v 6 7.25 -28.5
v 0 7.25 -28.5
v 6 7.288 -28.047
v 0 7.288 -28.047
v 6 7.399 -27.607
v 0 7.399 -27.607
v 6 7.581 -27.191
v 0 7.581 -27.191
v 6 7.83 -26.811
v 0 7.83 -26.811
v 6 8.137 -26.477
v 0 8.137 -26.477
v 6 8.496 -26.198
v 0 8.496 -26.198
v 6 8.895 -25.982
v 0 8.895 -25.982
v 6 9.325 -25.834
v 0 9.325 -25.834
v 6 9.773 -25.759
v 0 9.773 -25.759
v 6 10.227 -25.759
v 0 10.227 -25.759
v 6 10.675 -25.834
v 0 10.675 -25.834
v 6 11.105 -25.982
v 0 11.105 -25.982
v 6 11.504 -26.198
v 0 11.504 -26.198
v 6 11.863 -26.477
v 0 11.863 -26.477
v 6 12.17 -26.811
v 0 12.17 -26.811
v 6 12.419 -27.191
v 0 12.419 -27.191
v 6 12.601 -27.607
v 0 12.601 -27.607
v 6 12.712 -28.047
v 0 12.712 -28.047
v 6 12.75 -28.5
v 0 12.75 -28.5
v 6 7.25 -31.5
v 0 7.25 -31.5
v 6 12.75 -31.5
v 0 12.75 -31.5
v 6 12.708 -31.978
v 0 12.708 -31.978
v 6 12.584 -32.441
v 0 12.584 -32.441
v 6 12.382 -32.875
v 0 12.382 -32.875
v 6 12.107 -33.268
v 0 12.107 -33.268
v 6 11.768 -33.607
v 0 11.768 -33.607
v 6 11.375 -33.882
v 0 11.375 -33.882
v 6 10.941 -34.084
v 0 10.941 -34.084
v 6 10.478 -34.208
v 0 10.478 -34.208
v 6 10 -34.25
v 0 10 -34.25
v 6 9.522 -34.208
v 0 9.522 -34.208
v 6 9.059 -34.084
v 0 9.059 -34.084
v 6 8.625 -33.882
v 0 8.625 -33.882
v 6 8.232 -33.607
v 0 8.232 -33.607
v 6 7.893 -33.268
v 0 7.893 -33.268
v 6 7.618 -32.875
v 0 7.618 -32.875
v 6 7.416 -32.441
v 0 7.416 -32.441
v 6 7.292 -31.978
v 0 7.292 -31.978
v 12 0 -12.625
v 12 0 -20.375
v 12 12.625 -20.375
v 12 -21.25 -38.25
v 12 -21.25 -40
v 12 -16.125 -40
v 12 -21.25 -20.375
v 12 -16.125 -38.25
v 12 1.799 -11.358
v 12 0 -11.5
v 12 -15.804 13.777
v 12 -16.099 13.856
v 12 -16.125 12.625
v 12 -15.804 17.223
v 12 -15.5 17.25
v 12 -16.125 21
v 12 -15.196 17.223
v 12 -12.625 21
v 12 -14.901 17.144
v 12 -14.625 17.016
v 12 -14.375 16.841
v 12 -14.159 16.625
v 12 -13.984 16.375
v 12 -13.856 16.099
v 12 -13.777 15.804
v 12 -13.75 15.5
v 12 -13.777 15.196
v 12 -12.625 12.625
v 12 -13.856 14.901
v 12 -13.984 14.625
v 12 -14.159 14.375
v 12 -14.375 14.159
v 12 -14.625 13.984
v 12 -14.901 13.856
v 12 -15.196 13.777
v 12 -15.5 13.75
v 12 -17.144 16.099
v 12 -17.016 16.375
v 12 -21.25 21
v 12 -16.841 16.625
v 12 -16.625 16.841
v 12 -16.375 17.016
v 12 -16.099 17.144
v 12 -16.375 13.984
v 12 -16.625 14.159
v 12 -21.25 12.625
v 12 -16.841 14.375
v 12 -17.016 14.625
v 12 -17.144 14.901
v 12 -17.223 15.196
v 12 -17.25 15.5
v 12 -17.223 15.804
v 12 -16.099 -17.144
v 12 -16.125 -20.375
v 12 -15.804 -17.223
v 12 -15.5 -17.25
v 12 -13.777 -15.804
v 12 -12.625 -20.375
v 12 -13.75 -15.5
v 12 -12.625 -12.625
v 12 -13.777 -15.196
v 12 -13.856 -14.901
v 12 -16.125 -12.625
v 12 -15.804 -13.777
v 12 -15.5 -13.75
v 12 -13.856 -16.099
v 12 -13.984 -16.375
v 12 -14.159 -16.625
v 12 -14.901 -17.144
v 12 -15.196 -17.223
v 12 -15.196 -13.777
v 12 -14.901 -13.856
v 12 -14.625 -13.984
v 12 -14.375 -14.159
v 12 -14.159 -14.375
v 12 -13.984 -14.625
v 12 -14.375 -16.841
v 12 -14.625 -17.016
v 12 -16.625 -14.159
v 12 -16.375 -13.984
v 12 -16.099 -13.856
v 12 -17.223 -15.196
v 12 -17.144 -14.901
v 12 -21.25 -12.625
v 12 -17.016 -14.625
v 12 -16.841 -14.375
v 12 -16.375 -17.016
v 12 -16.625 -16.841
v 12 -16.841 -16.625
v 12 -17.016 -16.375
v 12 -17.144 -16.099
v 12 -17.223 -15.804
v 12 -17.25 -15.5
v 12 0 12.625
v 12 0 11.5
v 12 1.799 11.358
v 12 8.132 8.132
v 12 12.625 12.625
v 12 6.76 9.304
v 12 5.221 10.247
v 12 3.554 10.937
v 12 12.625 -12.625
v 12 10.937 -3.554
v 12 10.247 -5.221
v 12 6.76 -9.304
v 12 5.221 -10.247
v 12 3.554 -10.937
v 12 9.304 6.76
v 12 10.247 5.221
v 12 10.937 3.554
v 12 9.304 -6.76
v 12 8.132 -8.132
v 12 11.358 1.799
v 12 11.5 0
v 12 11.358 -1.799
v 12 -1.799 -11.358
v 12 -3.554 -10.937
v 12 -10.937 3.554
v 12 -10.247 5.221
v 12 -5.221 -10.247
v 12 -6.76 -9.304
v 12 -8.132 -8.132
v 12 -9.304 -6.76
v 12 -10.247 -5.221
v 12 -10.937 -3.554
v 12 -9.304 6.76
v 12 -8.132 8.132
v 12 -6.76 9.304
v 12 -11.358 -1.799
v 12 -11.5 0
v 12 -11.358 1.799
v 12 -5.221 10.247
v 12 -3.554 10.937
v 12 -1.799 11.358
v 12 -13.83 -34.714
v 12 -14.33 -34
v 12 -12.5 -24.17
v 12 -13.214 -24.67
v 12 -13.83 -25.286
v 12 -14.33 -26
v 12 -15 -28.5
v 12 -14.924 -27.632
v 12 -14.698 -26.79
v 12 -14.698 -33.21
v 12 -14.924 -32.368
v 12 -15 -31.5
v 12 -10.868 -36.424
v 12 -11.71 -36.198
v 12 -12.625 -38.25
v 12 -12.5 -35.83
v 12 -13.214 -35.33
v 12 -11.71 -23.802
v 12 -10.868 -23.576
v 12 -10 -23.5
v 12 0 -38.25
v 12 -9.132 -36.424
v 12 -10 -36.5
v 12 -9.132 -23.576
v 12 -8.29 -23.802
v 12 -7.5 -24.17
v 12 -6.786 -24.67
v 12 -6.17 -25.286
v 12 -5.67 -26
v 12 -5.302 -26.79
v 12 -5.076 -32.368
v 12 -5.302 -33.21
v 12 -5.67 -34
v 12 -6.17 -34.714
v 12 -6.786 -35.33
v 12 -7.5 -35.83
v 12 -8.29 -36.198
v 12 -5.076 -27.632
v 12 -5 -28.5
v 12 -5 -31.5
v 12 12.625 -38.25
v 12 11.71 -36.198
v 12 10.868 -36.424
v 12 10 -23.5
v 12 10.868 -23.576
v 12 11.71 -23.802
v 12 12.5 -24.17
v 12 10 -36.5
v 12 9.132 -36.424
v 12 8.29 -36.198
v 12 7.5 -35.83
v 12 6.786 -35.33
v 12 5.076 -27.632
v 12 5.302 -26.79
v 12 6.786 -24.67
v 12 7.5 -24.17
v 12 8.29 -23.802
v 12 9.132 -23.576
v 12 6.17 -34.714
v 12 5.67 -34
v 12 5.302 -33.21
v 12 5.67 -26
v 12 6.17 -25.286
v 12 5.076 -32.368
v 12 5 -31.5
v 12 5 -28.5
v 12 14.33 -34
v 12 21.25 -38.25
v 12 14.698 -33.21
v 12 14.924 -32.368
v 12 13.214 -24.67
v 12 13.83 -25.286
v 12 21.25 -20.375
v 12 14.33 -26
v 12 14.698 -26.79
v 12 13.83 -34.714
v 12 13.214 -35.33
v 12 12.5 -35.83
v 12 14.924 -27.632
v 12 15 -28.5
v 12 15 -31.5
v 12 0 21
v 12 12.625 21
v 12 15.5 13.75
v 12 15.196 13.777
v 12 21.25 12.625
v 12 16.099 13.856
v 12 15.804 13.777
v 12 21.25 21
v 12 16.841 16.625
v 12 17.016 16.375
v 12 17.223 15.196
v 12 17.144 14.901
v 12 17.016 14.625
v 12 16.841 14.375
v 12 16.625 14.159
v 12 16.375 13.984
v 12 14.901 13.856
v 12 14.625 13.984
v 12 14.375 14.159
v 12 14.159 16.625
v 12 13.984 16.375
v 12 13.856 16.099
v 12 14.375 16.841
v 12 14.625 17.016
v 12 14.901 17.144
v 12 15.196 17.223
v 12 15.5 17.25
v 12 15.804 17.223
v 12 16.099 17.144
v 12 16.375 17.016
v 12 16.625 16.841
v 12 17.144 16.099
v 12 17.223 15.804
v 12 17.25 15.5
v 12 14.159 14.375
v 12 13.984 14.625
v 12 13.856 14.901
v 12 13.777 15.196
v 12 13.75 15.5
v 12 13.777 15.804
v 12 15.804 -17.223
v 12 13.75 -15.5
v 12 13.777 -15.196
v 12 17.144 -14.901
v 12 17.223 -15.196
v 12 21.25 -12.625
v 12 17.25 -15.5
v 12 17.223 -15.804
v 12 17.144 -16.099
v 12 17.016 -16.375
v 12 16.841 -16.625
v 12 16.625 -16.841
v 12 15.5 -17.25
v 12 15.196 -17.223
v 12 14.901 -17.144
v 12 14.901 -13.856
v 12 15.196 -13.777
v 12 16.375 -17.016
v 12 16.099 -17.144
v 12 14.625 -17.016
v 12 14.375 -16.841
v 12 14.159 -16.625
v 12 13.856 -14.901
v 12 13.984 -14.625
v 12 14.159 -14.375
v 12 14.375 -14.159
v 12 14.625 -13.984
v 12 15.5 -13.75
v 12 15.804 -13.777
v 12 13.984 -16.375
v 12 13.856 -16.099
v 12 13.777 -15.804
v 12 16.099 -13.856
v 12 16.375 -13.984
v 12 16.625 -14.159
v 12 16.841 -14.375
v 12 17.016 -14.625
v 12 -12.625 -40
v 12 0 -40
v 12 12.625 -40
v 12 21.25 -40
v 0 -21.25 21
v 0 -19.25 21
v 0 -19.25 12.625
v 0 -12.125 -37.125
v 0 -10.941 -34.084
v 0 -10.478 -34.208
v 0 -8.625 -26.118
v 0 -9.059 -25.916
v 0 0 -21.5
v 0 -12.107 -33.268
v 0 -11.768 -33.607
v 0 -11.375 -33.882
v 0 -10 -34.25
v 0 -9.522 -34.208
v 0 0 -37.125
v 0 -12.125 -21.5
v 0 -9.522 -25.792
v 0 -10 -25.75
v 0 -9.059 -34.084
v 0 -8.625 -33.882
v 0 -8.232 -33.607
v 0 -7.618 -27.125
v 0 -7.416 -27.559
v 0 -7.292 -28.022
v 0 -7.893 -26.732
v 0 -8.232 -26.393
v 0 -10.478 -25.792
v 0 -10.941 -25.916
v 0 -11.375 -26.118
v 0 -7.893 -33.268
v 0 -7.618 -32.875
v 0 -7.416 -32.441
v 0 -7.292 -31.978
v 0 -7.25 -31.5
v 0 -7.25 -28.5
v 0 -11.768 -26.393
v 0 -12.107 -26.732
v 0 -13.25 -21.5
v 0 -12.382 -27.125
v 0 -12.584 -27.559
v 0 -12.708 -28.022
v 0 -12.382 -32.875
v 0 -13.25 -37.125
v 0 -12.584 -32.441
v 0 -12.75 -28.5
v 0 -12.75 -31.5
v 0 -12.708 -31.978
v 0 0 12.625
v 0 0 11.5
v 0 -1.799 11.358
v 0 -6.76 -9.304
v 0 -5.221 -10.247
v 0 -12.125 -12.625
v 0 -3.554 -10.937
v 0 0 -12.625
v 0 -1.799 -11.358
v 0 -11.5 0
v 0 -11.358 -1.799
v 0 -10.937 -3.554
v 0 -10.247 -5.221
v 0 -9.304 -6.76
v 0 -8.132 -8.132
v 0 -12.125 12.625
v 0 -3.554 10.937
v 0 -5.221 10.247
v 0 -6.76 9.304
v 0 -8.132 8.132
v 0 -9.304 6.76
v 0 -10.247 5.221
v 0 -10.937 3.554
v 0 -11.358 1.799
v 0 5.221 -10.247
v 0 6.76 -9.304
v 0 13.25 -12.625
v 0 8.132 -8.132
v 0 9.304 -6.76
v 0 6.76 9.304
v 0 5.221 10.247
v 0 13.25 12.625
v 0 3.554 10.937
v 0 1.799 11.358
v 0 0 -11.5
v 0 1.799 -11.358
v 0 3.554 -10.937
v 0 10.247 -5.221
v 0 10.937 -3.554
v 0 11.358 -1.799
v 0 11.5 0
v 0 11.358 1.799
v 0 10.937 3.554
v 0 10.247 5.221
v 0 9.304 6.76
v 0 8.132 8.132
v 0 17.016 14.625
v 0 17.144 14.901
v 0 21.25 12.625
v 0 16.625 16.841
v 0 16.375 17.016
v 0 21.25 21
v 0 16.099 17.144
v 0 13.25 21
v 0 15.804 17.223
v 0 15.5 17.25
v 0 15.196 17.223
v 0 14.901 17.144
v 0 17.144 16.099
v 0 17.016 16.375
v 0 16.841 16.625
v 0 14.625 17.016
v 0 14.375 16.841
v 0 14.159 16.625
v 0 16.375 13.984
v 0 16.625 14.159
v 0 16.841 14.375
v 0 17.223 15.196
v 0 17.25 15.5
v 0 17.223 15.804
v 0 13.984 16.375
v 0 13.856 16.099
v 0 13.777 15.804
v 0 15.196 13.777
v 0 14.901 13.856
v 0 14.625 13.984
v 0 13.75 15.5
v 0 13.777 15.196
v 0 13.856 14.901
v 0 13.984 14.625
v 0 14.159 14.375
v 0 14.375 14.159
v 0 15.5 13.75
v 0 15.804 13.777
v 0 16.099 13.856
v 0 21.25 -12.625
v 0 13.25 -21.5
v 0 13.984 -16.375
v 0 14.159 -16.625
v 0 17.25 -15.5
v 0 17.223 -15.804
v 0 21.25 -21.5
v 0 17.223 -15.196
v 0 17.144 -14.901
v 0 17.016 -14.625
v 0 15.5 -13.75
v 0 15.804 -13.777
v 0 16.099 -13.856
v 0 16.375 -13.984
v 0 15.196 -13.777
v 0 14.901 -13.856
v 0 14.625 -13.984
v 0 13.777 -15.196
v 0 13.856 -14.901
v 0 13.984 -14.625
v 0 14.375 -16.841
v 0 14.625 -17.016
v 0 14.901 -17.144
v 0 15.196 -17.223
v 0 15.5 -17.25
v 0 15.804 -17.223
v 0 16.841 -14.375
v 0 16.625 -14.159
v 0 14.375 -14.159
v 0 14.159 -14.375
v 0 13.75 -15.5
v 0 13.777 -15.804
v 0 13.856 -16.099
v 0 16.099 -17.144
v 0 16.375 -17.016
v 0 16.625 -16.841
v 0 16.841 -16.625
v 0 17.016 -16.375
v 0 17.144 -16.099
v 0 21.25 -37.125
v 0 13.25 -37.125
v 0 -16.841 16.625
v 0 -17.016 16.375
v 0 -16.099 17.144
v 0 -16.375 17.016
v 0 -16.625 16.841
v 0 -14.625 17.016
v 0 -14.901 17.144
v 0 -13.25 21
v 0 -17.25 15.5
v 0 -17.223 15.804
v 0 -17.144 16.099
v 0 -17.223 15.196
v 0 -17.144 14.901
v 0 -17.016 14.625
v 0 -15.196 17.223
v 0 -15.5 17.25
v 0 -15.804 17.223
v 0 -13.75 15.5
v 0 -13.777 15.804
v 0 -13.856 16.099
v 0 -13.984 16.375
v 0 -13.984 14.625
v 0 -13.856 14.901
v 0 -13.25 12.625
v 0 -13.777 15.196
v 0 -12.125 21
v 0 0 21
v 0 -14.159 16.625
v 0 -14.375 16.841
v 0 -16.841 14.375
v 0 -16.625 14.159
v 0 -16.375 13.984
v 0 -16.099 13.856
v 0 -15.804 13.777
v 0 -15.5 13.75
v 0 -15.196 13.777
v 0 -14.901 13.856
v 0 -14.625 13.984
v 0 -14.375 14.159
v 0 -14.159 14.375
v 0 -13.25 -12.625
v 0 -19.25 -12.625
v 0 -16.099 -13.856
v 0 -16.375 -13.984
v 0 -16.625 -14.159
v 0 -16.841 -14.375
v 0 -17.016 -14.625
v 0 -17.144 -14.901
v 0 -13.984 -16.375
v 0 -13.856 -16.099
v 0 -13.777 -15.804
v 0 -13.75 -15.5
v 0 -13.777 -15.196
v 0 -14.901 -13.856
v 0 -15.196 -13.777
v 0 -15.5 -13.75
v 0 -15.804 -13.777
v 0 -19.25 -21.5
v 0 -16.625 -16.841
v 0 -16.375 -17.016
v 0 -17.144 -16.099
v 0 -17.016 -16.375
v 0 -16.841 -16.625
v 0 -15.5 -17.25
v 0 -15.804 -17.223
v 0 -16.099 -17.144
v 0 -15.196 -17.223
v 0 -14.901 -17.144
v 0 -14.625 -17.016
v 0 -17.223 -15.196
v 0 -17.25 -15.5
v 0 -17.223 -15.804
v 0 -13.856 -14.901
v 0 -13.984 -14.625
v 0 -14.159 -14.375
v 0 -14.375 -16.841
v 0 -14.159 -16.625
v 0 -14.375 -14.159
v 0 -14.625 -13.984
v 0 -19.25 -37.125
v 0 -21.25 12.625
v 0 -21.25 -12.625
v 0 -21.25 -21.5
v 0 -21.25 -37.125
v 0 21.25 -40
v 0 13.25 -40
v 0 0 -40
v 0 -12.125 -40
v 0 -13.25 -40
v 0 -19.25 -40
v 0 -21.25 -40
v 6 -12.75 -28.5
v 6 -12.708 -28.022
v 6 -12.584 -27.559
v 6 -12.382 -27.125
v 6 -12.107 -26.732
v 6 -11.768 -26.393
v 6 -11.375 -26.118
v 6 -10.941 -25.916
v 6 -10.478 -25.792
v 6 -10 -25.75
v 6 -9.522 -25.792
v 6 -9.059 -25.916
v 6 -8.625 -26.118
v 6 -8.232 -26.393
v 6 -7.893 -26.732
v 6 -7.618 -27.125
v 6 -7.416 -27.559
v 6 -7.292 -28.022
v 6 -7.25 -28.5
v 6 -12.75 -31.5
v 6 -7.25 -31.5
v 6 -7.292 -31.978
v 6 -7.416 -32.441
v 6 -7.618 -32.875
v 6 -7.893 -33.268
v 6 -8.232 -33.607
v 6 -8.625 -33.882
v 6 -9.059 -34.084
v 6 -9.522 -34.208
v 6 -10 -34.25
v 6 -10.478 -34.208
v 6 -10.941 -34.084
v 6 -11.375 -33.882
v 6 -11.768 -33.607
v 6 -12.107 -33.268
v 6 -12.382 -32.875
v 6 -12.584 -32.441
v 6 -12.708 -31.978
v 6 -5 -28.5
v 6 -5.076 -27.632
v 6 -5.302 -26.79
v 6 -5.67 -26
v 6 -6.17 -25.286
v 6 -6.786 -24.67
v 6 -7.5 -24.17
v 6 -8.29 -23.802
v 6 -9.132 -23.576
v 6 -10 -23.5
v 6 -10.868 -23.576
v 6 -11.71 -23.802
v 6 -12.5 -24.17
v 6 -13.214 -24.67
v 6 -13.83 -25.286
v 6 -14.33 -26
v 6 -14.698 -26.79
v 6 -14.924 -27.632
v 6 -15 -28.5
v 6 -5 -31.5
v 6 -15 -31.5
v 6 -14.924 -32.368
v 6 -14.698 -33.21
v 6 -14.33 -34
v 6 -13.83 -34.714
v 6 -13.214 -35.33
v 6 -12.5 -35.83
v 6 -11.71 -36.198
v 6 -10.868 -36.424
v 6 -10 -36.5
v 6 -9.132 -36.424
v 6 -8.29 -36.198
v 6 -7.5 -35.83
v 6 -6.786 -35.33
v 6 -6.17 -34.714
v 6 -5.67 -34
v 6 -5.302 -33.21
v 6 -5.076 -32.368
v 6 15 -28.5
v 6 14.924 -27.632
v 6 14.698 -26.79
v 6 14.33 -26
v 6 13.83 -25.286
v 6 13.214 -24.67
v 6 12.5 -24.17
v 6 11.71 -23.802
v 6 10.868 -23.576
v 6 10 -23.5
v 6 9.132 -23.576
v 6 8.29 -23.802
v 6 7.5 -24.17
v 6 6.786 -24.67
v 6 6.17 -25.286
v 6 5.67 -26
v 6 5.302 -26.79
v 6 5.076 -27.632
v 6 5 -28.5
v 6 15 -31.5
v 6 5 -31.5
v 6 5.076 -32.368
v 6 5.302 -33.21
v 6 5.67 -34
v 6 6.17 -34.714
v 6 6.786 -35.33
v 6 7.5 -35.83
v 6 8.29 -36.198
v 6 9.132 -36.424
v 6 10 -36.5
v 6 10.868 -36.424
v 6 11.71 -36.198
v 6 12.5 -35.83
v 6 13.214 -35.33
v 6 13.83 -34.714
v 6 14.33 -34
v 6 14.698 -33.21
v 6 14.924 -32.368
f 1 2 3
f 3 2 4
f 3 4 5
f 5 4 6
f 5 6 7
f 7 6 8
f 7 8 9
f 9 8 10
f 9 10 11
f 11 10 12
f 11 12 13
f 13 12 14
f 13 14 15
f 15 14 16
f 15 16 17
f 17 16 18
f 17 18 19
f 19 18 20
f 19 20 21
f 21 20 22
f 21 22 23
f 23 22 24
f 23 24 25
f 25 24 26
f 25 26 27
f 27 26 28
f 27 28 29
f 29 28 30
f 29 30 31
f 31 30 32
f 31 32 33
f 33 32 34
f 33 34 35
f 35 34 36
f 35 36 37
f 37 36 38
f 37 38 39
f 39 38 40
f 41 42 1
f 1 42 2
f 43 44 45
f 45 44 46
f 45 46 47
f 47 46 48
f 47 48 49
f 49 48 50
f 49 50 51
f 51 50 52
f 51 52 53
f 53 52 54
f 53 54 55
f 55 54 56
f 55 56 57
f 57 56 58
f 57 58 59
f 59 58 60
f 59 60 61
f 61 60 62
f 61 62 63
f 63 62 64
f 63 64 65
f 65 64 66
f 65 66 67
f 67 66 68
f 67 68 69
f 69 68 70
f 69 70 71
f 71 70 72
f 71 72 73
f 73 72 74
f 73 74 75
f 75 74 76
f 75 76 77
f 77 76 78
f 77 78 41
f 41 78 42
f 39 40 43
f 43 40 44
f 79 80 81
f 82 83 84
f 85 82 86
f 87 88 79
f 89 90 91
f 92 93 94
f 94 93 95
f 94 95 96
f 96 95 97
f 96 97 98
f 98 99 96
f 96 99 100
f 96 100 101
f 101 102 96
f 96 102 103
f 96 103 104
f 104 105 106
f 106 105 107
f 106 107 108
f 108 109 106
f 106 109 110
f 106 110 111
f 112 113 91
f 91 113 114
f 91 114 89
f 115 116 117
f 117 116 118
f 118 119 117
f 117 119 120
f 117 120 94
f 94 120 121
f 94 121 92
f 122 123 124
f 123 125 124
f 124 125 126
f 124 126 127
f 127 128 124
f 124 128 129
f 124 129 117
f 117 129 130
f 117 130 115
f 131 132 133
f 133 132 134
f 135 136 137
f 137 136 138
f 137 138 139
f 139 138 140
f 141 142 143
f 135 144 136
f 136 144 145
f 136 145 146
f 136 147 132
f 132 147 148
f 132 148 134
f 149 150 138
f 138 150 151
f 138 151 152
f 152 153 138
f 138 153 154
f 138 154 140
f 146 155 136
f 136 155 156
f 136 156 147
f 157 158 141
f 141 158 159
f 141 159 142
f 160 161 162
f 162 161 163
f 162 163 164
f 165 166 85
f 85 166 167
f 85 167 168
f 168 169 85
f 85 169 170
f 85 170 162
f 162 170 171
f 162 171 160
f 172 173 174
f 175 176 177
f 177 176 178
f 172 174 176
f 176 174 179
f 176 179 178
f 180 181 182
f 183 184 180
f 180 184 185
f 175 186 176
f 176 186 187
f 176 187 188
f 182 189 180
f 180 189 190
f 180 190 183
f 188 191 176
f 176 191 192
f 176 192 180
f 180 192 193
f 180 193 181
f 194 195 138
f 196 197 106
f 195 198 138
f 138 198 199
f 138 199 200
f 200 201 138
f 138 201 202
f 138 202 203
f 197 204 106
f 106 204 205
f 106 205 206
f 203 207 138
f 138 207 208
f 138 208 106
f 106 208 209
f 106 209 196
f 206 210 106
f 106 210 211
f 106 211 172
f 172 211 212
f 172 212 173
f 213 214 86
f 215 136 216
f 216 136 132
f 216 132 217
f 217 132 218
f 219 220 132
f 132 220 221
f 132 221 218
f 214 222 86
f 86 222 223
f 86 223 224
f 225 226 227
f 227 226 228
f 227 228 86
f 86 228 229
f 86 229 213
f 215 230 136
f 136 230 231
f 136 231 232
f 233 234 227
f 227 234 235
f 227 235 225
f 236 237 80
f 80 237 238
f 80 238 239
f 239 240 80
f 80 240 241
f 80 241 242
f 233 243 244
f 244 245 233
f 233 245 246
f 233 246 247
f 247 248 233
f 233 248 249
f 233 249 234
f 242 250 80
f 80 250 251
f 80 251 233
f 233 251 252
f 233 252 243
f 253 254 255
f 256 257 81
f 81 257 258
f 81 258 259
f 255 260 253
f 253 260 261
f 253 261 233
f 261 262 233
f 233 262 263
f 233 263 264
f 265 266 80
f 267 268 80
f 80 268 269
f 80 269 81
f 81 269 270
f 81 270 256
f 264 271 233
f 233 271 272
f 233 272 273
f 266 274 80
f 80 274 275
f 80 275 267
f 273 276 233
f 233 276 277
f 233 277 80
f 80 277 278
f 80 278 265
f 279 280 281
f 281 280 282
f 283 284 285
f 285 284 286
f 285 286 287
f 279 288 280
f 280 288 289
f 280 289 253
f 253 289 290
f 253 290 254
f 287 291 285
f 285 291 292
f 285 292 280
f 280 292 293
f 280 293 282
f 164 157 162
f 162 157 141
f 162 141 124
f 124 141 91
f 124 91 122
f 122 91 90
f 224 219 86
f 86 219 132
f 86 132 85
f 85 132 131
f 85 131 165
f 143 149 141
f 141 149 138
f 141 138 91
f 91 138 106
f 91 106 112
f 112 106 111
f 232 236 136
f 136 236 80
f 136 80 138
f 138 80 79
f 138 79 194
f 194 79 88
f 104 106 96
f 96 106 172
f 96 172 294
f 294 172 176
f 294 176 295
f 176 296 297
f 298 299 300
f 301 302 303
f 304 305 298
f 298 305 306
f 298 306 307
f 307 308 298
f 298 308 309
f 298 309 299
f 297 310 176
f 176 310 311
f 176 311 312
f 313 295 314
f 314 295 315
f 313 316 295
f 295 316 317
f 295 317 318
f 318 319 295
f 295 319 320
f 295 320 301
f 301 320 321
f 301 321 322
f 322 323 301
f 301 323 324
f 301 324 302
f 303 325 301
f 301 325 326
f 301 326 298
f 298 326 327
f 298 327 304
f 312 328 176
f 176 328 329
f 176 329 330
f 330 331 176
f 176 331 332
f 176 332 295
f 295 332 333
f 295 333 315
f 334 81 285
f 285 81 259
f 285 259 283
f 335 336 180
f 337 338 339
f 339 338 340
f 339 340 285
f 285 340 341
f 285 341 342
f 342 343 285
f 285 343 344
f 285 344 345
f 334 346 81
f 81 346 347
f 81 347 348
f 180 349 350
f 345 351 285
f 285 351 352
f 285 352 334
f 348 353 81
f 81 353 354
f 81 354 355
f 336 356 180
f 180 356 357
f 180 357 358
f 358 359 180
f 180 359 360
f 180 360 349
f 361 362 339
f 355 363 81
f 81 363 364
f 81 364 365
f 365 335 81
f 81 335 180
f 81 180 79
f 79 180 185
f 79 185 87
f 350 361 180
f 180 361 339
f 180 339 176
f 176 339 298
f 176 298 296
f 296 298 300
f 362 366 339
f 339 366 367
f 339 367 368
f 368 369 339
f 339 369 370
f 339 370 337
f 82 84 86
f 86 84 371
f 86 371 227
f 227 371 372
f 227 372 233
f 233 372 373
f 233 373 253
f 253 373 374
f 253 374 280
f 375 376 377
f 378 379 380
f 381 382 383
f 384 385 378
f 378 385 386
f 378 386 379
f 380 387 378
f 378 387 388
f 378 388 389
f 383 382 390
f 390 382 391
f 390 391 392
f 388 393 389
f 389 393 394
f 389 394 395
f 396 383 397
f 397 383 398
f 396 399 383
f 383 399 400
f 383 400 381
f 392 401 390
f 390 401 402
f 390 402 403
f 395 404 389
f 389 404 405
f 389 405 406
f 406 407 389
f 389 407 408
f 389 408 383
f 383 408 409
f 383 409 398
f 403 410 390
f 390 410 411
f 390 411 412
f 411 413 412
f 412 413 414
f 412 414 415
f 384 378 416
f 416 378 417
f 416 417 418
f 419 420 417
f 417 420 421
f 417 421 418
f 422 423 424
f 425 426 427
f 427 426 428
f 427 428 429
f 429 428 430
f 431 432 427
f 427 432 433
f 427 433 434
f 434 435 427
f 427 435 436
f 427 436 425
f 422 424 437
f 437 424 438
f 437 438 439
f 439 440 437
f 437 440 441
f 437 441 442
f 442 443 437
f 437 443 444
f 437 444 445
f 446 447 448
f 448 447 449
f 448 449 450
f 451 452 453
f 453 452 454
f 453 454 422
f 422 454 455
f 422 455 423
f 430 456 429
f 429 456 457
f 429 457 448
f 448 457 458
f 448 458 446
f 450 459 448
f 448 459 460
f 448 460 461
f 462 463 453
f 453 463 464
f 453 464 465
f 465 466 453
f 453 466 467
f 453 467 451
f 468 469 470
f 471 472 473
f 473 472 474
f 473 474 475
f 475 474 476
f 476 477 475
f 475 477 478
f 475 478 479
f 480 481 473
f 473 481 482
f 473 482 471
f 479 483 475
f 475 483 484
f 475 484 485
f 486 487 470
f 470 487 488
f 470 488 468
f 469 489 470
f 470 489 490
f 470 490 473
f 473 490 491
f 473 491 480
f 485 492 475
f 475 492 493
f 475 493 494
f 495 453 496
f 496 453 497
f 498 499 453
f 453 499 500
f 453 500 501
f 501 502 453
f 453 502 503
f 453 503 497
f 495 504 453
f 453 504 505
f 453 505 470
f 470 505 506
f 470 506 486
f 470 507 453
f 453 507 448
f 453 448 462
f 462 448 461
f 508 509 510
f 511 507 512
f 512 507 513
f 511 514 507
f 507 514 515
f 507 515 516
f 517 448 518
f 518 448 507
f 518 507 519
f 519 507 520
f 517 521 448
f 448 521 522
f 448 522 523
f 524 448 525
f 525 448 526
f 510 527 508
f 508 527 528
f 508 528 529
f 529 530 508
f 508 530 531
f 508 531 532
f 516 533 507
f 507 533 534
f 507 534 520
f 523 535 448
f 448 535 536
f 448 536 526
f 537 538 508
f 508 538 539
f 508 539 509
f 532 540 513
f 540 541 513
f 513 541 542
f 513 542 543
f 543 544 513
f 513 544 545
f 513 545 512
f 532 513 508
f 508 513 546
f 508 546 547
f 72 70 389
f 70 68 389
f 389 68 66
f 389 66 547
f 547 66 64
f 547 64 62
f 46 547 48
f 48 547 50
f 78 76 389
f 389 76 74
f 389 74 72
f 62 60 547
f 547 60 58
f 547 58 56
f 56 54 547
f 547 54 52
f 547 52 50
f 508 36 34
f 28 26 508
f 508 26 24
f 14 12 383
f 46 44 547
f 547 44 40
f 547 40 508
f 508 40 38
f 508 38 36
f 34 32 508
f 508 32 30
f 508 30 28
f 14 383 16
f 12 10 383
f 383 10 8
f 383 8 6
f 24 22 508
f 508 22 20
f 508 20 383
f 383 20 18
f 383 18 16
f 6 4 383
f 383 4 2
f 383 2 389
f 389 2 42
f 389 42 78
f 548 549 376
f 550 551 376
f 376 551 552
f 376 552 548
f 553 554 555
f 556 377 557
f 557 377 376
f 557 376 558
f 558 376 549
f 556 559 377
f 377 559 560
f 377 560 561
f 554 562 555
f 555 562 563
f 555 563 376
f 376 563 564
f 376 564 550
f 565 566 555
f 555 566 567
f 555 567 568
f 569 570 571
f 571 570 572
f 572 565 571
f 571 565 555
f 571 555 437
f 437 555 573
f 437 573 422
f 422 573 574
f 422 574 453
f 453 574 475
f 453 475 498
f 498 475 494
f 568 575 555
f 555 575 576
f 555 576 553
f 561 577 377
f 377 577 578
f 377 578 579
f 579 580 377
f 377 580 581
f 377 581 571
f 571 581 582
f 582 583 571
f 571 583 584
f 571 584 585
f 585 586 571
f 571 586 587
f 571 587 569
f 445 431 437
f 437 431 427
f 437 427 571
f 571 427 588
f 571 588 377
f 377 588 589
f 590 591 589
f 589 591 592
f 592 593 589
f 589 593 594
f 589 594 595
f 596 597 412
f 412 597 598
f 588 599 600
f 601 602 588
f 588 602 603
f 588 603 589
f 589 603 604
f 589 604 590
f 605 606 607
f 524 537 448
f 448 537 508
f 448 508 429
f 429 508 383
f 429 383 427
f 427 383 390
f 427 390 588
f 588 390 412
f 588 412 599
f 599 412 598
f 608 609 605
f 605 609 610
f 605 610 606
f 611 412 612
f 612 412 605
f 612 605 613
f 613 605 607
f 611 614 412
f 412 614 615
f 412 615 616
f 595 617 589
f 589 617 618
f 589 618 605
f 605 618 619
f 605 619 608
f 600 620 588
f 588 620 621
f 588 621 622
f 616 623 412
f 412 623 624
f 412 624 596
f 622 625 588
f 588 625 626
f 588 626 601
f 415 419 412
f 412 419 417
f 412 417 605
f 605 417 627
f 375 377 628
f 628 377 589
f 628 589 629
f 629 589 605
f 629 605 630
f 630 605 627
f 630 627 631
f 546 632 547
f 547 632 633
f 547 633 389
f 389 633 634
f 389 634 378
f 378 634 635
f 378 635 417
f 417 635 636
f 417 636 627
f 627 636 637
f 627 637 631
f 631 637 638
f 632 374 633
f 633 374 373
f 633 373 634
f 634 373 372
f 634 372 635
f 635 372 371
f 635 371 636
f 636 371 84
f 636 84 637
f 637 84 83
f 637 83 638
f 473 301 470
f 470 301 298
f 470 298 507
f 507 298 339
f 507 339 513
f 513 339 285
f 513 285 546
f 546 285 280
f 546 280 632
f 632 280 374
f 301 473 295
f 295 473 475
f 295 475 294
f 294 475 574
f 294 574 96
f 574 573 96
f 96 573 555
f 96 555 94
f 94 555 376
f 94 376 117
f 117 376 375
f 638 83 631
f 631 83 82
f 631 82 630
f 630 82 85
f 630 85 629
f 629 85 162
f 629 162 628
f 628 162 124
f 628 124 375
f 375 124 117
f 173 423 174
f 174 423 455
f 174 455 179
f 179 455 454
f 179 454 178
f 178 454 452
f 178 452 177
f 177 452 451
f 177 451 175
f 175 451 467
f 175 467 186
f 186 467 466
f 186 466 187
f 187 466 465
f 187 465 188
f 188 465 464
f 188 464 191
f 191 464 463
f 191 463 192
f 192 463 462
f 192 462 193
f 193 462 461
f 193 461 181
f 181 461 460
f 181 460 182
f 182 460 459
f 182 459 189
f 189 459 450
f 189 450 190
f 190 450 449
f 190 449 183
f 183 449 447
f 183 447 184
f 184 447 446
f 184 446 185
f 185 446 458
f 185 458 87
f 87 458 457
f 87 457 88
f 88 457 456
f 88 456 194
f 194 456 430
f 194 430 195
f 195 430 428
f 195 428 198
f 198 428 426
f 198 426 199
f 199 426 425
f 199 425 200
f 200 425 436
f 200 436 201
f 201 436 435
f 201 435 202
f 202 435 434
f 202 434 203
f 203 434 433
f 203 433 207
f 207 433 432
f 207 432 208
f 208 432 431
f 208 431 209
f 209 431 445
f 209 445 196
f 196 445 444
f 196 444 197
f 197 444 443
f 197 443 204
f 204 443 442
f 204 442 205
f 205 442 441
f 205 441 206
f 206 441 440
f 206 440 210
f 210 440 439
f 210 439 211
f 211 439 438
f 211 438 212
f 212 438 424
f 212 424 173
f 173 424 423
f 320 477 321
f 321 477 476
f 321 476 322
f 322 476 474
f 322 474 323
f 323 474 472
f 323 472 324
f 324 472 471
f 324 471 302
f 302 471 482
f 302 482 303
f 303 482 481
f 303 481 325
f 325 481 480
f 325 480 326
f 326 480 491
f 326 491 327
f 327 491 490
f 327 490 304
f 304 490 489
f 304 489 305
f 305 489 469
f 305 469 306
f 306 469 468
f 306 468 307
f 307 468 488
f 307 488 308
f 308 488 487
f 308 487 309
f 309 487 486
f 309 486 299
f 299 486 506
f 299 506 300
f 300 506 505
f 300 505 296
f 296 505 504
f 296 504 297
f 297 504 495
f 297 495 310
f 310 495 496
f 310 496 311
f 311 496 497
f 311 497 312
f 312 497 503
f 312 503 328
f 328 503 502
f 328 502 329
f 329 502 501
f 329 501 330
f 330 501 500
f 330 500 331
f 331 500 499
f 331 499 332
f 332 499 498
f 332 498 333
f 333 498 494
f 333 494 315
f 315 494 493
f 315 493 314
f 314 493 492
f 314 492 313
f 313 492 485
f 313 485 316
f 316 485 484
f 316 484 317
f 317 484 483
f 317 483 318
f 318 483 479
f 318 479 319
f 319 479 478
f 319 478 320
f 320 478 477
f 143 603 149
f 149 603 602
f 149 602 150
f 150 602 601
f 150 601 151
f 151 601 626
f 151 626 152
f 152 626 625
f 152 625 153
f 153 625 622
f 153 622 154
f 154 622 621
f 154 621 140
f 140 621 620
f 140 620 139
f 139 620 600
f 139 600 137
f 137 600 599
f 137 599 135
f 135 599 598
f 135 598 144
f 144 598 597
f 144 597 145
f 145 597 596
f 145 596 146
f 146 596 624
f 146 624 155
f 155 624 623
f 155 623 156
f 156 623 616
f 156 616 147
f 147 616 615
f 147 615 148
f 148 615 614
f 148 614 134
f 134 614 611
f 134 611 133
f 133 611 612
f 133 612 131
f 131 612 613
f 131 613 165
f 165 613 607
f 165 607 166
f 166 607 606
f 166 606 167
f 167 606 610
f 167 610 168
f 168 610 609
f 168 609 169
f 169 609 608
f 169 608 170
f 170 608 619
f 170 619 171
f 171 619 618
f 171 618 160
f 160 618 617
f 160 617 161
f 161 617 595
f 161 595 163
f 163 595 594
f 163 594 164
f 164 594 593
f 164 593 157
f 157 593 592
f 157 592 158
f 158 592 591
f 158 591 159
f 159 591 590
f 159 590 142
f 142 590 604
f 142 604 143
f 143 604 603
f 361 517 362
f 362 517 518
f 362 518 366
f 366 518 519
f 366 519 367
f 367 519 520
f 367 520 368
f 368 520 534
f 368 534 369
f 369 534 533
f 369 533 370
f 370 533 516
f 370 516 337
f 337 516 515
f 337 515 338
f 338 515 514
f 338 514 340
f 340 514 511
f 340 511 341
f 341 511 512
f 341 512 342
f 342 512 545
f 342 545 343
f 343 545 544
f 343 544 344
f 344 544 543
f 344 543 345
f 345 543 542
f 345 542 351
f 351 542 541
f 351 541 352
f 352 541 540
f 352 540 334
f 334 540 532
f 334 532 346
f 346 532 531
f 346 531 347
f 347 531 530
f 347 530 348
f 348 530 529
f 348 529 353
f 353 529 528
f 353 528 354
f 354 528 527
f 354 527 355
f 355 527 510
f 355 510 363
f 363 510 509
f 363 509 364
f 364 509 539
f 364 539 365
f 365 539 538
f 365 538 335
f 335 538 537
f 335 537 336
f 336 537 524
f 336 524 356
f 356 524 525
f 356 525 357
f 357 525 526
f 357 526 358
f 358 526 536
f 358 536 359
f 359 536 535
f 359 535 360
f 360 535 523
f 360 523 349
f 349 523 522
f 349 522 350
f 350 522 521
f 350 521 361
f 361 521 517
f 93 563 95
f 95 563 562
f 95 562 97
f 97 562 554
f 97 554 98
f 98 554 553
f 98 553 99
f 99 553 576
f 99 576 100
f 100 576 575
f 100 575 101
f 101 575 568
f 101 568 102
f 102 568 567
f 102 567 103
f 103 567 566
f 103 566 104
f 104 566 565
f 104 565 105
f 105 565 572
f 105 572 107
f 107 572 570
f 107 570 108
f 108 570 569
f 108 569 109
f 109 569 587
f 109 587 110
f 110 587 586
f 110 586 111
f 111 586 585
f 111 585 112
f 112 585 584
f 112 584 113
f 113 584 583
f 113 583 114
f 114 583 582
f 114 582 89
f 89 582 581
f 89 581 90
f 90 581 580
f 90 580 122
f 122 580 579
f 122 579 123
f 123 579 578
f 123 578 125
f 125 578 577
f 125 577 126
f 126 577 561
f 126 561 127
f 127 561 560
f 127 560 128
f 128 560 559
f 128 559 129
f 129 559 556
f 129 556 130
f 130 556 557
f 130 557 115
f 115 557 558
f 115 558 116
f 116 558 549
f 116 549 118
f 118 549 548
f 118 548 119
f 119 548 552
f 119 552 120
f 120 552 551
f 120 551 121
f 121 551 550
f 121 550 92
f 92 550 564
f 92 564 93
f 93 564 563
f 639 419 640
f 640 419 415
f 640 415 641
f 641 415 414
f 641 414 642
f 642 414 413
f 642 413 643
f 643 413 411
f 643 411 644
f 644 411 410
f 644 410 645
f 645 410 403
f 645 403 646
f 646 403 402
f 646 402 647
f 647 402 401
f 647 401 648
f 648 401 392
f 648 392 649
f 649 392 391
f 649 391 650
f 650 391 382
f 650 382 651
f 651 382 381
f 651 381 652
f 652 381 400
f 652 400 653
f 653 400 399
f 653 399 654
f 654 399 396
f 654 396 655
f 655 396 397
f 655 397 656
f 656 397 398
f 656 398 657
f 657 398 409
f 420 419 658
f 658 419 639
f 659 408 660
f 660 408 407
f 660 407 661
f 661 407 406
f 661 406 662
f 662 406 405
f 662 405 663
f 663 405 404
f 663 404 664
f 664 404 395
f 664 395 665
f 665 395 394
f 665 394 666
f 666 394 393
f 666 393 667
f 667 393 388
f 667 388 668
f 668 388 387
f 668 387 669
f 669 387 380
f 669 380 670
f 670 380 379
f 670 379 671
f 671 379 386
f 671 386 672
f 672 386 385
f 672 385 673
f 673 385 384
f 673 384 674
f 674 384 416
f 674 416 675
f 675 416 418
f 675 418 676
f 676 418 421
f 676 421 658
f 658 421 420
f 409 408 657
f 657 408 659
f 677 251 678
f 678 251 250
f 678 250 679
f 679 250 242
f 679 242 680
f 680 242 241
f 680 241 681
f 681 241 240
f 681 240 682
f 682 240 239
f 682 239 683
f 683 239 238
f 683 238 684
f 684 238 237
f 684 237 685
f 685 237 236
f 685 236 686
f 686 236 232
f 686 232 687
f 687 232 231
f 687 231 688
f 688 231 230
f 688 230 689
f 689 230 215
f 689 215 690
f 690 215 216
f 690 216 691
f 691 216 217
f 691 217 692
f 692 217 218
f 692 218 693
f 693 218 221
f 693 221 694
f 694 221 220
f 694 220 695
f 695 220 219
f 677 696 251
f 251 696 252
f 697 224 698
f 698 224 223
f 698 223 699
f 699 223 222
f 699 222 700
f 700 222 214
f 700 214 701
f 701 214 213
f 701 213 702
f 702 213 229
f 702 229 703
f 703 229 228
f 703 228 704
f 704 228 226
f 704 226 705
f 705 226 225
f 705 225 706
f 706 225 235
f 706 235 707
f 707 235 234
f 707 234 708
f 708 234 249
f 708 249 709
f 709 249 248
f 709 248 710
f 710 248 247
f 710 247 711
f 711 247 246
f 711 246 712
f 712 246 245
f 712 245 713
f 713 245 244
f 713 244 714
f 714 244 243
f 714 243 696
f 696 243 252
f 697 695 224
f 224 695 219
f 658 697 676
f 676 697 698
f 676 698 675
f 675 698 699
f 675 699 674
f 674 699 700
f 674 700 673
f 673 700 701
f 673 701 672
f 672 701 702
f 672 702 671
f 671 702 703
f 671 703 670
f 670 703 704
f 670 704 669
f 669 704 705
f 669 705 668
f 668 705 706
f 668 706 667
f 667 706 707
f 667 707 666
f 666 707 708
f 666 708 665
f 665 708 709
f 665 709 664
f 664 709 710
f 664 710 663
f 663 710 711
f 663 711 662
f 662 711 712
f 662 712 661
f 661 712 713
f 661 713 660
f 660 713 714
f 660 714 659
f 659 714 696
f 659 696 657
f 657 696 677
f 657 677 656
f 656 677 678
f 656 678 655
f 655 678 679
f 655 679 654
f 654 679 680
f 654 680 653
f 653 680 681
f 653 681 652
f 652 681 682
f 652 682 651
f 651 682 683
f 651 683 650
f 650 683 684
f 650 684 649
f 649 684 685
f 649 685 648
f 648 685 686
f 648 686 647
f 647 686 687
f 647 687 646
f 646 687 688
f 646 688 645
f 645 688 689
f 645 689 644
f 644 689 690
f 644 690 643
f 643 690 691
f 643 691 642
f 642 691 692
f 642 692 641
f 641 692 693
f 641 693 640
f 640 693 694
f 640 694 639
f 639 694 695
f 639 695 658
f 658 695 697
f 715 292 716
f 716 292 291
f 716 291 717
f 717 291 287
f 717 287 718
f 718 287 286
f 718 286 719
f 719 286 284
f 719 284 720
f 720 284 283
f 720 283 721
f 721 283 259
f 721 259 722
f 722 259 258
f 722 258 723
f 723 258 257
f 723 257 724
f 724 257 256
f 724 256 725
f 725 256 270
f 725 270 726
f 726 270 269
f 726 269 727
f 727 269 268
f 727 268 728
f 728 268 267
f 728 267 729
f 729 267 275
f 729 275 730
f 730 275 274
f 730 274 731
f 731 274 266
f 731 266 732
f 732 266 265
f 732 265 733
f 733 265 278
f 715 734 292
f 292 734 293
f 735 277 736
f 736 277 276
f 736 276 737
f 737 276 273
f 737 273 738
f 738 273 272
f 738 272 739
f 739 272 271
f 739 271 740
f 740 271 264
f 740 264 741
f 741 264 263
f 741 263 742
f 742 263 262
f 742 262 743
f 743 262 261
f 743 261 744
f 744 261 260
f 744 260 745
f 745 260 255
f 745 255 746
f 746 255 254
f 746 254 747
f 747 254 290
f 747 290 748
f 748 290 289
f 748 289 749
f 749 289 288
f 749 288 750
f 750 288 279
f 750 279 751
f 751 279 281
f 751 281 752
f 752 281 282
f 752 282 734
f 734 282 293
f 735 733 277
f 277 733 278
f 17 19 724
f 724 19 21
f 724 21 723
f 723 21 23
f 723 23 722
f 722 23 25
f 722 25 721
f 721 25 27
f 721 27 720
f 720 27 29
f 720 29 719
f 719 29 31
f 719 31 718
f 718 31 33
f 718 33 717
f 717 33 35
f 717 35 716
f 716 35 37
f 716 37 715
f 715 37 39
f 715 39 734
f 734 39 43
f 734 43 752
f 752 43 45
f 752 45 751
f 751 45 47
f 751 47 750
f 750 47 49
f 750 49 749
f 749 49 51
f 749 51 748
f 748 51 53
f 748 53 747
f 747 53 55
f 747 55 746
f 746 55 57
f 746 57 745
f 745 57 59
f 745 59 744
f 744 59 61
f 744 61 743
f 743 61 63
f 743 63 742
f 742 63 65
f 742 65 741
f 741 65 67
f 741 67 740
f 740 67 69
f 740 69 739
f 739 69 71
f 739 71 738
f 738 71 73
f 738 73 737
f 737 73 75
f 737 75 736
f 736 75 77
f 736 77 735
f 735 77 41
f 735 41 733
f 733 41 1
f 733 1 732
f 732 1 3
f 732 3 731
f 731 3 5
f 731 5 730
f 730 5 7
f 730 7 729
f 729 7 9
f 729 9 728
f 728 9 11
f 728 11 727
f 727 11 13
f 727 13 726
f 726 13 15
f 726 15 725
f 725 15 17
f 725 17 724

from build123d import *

# Parameters (mm, degrees)
SKETCH2_W           = 61
SKETCH2_H           = 42.5
SKETCH2_R           = 11.5
SKETCH2_R_2         = 1.75
BOSS_EXTRUDE2_DEPTH = 12
CUT_EXTRUDE1_DEPTH  = 6


with BuildPart() as part:
    # Sketch2 → Boss-Extrude2 (new body)
    with BuildSketch(Plane(origin=(0, 0, 0), x_dir=(0, 0, -1), z_dir=(1, 0, 0))):
        with Locations((9.5, 0)):
            Rectangle(SKETCH2_W, SKETCH2_H)
        Circle(SKETCH2_R, mode=Mode.SUBTRACT)
        with Locations((-15.5, 15.5)):
            Circle(SKETCH2_R_2, mode=Mode.SUBTRACT)
        with Locations((15.5, -15.5)):
            Circle(SKETCH2_R_2, mode=Mode.SUBTRACT)
        with Locations((15.5, 15.5)):
            Circle(SKETCH2_R_2, mode=Mode.SUBTRACT)
        with Locations((-15.5, -15.5)):
            Circle(SKETCH2_R_2, mode=Mode.SUBTRACT)
        with BuildLine():
            Line((28.5, 12.75), (31.5, 12.75))
            ThreePointArc((31.5, 12.75), (34.25, 10), (31.5, 7.25))
            Line((31.5, 7.25), (28.5, 7.25))
            ThreePointArc((28.5, 7.25), (25.75, 10), (28.5, 12.75))
        make_face(mode=Mode.SUBTRACT)
        with BuildLine():
            Line((28.5, -12.75), (31.5, -12.75))
            ThreePointArc((31.5, -12.75), (34.25, -10), (31.5, -7.25))
            Line((31.5, -7.25), (28.5, -7.25))
            ThreePointArc((28.5, -7.25), (25.75, -10), (28.5, -12.75))
        make_face(mode=Mode.SUBTRACT)
    extrude(amount=BOSS_EXTRUDE2_DEPTH)

    # Sketch3 → Cut-Extrude1 (cut)
    with BuildSketch(Plane(origin=(12, 0, 0), x_dir=(0, 0, -1), z_dir=(1, 0, 0))):
        with BuildLine():
            Line((28.5, 15), (31.5, 15))
            ThreePointArc((31.5, 15), (36.5, 10), (31.5, 5))
            Line((31.5, 5), (28.5, 5))
            ThreePointArc((28.5, 5), (23.5, 10), (28.5, 15))
        make_face()
        with BuildLine():
            Line((28.5, -15), (31.5, -15))
            ThreePointArc((31.5, -15), (36.5, -10), (31.5, -5))
            Line((31.5, -5), (28.5, -5))
            ThreePointArc((28.5, -5), (23.5, -10), (28.5, -15))
        make_face()
    extrude(amount=-CUT_EXTRUDE1_DEPTH, mode=Mode.SUBTRACT)


solid = part.part
